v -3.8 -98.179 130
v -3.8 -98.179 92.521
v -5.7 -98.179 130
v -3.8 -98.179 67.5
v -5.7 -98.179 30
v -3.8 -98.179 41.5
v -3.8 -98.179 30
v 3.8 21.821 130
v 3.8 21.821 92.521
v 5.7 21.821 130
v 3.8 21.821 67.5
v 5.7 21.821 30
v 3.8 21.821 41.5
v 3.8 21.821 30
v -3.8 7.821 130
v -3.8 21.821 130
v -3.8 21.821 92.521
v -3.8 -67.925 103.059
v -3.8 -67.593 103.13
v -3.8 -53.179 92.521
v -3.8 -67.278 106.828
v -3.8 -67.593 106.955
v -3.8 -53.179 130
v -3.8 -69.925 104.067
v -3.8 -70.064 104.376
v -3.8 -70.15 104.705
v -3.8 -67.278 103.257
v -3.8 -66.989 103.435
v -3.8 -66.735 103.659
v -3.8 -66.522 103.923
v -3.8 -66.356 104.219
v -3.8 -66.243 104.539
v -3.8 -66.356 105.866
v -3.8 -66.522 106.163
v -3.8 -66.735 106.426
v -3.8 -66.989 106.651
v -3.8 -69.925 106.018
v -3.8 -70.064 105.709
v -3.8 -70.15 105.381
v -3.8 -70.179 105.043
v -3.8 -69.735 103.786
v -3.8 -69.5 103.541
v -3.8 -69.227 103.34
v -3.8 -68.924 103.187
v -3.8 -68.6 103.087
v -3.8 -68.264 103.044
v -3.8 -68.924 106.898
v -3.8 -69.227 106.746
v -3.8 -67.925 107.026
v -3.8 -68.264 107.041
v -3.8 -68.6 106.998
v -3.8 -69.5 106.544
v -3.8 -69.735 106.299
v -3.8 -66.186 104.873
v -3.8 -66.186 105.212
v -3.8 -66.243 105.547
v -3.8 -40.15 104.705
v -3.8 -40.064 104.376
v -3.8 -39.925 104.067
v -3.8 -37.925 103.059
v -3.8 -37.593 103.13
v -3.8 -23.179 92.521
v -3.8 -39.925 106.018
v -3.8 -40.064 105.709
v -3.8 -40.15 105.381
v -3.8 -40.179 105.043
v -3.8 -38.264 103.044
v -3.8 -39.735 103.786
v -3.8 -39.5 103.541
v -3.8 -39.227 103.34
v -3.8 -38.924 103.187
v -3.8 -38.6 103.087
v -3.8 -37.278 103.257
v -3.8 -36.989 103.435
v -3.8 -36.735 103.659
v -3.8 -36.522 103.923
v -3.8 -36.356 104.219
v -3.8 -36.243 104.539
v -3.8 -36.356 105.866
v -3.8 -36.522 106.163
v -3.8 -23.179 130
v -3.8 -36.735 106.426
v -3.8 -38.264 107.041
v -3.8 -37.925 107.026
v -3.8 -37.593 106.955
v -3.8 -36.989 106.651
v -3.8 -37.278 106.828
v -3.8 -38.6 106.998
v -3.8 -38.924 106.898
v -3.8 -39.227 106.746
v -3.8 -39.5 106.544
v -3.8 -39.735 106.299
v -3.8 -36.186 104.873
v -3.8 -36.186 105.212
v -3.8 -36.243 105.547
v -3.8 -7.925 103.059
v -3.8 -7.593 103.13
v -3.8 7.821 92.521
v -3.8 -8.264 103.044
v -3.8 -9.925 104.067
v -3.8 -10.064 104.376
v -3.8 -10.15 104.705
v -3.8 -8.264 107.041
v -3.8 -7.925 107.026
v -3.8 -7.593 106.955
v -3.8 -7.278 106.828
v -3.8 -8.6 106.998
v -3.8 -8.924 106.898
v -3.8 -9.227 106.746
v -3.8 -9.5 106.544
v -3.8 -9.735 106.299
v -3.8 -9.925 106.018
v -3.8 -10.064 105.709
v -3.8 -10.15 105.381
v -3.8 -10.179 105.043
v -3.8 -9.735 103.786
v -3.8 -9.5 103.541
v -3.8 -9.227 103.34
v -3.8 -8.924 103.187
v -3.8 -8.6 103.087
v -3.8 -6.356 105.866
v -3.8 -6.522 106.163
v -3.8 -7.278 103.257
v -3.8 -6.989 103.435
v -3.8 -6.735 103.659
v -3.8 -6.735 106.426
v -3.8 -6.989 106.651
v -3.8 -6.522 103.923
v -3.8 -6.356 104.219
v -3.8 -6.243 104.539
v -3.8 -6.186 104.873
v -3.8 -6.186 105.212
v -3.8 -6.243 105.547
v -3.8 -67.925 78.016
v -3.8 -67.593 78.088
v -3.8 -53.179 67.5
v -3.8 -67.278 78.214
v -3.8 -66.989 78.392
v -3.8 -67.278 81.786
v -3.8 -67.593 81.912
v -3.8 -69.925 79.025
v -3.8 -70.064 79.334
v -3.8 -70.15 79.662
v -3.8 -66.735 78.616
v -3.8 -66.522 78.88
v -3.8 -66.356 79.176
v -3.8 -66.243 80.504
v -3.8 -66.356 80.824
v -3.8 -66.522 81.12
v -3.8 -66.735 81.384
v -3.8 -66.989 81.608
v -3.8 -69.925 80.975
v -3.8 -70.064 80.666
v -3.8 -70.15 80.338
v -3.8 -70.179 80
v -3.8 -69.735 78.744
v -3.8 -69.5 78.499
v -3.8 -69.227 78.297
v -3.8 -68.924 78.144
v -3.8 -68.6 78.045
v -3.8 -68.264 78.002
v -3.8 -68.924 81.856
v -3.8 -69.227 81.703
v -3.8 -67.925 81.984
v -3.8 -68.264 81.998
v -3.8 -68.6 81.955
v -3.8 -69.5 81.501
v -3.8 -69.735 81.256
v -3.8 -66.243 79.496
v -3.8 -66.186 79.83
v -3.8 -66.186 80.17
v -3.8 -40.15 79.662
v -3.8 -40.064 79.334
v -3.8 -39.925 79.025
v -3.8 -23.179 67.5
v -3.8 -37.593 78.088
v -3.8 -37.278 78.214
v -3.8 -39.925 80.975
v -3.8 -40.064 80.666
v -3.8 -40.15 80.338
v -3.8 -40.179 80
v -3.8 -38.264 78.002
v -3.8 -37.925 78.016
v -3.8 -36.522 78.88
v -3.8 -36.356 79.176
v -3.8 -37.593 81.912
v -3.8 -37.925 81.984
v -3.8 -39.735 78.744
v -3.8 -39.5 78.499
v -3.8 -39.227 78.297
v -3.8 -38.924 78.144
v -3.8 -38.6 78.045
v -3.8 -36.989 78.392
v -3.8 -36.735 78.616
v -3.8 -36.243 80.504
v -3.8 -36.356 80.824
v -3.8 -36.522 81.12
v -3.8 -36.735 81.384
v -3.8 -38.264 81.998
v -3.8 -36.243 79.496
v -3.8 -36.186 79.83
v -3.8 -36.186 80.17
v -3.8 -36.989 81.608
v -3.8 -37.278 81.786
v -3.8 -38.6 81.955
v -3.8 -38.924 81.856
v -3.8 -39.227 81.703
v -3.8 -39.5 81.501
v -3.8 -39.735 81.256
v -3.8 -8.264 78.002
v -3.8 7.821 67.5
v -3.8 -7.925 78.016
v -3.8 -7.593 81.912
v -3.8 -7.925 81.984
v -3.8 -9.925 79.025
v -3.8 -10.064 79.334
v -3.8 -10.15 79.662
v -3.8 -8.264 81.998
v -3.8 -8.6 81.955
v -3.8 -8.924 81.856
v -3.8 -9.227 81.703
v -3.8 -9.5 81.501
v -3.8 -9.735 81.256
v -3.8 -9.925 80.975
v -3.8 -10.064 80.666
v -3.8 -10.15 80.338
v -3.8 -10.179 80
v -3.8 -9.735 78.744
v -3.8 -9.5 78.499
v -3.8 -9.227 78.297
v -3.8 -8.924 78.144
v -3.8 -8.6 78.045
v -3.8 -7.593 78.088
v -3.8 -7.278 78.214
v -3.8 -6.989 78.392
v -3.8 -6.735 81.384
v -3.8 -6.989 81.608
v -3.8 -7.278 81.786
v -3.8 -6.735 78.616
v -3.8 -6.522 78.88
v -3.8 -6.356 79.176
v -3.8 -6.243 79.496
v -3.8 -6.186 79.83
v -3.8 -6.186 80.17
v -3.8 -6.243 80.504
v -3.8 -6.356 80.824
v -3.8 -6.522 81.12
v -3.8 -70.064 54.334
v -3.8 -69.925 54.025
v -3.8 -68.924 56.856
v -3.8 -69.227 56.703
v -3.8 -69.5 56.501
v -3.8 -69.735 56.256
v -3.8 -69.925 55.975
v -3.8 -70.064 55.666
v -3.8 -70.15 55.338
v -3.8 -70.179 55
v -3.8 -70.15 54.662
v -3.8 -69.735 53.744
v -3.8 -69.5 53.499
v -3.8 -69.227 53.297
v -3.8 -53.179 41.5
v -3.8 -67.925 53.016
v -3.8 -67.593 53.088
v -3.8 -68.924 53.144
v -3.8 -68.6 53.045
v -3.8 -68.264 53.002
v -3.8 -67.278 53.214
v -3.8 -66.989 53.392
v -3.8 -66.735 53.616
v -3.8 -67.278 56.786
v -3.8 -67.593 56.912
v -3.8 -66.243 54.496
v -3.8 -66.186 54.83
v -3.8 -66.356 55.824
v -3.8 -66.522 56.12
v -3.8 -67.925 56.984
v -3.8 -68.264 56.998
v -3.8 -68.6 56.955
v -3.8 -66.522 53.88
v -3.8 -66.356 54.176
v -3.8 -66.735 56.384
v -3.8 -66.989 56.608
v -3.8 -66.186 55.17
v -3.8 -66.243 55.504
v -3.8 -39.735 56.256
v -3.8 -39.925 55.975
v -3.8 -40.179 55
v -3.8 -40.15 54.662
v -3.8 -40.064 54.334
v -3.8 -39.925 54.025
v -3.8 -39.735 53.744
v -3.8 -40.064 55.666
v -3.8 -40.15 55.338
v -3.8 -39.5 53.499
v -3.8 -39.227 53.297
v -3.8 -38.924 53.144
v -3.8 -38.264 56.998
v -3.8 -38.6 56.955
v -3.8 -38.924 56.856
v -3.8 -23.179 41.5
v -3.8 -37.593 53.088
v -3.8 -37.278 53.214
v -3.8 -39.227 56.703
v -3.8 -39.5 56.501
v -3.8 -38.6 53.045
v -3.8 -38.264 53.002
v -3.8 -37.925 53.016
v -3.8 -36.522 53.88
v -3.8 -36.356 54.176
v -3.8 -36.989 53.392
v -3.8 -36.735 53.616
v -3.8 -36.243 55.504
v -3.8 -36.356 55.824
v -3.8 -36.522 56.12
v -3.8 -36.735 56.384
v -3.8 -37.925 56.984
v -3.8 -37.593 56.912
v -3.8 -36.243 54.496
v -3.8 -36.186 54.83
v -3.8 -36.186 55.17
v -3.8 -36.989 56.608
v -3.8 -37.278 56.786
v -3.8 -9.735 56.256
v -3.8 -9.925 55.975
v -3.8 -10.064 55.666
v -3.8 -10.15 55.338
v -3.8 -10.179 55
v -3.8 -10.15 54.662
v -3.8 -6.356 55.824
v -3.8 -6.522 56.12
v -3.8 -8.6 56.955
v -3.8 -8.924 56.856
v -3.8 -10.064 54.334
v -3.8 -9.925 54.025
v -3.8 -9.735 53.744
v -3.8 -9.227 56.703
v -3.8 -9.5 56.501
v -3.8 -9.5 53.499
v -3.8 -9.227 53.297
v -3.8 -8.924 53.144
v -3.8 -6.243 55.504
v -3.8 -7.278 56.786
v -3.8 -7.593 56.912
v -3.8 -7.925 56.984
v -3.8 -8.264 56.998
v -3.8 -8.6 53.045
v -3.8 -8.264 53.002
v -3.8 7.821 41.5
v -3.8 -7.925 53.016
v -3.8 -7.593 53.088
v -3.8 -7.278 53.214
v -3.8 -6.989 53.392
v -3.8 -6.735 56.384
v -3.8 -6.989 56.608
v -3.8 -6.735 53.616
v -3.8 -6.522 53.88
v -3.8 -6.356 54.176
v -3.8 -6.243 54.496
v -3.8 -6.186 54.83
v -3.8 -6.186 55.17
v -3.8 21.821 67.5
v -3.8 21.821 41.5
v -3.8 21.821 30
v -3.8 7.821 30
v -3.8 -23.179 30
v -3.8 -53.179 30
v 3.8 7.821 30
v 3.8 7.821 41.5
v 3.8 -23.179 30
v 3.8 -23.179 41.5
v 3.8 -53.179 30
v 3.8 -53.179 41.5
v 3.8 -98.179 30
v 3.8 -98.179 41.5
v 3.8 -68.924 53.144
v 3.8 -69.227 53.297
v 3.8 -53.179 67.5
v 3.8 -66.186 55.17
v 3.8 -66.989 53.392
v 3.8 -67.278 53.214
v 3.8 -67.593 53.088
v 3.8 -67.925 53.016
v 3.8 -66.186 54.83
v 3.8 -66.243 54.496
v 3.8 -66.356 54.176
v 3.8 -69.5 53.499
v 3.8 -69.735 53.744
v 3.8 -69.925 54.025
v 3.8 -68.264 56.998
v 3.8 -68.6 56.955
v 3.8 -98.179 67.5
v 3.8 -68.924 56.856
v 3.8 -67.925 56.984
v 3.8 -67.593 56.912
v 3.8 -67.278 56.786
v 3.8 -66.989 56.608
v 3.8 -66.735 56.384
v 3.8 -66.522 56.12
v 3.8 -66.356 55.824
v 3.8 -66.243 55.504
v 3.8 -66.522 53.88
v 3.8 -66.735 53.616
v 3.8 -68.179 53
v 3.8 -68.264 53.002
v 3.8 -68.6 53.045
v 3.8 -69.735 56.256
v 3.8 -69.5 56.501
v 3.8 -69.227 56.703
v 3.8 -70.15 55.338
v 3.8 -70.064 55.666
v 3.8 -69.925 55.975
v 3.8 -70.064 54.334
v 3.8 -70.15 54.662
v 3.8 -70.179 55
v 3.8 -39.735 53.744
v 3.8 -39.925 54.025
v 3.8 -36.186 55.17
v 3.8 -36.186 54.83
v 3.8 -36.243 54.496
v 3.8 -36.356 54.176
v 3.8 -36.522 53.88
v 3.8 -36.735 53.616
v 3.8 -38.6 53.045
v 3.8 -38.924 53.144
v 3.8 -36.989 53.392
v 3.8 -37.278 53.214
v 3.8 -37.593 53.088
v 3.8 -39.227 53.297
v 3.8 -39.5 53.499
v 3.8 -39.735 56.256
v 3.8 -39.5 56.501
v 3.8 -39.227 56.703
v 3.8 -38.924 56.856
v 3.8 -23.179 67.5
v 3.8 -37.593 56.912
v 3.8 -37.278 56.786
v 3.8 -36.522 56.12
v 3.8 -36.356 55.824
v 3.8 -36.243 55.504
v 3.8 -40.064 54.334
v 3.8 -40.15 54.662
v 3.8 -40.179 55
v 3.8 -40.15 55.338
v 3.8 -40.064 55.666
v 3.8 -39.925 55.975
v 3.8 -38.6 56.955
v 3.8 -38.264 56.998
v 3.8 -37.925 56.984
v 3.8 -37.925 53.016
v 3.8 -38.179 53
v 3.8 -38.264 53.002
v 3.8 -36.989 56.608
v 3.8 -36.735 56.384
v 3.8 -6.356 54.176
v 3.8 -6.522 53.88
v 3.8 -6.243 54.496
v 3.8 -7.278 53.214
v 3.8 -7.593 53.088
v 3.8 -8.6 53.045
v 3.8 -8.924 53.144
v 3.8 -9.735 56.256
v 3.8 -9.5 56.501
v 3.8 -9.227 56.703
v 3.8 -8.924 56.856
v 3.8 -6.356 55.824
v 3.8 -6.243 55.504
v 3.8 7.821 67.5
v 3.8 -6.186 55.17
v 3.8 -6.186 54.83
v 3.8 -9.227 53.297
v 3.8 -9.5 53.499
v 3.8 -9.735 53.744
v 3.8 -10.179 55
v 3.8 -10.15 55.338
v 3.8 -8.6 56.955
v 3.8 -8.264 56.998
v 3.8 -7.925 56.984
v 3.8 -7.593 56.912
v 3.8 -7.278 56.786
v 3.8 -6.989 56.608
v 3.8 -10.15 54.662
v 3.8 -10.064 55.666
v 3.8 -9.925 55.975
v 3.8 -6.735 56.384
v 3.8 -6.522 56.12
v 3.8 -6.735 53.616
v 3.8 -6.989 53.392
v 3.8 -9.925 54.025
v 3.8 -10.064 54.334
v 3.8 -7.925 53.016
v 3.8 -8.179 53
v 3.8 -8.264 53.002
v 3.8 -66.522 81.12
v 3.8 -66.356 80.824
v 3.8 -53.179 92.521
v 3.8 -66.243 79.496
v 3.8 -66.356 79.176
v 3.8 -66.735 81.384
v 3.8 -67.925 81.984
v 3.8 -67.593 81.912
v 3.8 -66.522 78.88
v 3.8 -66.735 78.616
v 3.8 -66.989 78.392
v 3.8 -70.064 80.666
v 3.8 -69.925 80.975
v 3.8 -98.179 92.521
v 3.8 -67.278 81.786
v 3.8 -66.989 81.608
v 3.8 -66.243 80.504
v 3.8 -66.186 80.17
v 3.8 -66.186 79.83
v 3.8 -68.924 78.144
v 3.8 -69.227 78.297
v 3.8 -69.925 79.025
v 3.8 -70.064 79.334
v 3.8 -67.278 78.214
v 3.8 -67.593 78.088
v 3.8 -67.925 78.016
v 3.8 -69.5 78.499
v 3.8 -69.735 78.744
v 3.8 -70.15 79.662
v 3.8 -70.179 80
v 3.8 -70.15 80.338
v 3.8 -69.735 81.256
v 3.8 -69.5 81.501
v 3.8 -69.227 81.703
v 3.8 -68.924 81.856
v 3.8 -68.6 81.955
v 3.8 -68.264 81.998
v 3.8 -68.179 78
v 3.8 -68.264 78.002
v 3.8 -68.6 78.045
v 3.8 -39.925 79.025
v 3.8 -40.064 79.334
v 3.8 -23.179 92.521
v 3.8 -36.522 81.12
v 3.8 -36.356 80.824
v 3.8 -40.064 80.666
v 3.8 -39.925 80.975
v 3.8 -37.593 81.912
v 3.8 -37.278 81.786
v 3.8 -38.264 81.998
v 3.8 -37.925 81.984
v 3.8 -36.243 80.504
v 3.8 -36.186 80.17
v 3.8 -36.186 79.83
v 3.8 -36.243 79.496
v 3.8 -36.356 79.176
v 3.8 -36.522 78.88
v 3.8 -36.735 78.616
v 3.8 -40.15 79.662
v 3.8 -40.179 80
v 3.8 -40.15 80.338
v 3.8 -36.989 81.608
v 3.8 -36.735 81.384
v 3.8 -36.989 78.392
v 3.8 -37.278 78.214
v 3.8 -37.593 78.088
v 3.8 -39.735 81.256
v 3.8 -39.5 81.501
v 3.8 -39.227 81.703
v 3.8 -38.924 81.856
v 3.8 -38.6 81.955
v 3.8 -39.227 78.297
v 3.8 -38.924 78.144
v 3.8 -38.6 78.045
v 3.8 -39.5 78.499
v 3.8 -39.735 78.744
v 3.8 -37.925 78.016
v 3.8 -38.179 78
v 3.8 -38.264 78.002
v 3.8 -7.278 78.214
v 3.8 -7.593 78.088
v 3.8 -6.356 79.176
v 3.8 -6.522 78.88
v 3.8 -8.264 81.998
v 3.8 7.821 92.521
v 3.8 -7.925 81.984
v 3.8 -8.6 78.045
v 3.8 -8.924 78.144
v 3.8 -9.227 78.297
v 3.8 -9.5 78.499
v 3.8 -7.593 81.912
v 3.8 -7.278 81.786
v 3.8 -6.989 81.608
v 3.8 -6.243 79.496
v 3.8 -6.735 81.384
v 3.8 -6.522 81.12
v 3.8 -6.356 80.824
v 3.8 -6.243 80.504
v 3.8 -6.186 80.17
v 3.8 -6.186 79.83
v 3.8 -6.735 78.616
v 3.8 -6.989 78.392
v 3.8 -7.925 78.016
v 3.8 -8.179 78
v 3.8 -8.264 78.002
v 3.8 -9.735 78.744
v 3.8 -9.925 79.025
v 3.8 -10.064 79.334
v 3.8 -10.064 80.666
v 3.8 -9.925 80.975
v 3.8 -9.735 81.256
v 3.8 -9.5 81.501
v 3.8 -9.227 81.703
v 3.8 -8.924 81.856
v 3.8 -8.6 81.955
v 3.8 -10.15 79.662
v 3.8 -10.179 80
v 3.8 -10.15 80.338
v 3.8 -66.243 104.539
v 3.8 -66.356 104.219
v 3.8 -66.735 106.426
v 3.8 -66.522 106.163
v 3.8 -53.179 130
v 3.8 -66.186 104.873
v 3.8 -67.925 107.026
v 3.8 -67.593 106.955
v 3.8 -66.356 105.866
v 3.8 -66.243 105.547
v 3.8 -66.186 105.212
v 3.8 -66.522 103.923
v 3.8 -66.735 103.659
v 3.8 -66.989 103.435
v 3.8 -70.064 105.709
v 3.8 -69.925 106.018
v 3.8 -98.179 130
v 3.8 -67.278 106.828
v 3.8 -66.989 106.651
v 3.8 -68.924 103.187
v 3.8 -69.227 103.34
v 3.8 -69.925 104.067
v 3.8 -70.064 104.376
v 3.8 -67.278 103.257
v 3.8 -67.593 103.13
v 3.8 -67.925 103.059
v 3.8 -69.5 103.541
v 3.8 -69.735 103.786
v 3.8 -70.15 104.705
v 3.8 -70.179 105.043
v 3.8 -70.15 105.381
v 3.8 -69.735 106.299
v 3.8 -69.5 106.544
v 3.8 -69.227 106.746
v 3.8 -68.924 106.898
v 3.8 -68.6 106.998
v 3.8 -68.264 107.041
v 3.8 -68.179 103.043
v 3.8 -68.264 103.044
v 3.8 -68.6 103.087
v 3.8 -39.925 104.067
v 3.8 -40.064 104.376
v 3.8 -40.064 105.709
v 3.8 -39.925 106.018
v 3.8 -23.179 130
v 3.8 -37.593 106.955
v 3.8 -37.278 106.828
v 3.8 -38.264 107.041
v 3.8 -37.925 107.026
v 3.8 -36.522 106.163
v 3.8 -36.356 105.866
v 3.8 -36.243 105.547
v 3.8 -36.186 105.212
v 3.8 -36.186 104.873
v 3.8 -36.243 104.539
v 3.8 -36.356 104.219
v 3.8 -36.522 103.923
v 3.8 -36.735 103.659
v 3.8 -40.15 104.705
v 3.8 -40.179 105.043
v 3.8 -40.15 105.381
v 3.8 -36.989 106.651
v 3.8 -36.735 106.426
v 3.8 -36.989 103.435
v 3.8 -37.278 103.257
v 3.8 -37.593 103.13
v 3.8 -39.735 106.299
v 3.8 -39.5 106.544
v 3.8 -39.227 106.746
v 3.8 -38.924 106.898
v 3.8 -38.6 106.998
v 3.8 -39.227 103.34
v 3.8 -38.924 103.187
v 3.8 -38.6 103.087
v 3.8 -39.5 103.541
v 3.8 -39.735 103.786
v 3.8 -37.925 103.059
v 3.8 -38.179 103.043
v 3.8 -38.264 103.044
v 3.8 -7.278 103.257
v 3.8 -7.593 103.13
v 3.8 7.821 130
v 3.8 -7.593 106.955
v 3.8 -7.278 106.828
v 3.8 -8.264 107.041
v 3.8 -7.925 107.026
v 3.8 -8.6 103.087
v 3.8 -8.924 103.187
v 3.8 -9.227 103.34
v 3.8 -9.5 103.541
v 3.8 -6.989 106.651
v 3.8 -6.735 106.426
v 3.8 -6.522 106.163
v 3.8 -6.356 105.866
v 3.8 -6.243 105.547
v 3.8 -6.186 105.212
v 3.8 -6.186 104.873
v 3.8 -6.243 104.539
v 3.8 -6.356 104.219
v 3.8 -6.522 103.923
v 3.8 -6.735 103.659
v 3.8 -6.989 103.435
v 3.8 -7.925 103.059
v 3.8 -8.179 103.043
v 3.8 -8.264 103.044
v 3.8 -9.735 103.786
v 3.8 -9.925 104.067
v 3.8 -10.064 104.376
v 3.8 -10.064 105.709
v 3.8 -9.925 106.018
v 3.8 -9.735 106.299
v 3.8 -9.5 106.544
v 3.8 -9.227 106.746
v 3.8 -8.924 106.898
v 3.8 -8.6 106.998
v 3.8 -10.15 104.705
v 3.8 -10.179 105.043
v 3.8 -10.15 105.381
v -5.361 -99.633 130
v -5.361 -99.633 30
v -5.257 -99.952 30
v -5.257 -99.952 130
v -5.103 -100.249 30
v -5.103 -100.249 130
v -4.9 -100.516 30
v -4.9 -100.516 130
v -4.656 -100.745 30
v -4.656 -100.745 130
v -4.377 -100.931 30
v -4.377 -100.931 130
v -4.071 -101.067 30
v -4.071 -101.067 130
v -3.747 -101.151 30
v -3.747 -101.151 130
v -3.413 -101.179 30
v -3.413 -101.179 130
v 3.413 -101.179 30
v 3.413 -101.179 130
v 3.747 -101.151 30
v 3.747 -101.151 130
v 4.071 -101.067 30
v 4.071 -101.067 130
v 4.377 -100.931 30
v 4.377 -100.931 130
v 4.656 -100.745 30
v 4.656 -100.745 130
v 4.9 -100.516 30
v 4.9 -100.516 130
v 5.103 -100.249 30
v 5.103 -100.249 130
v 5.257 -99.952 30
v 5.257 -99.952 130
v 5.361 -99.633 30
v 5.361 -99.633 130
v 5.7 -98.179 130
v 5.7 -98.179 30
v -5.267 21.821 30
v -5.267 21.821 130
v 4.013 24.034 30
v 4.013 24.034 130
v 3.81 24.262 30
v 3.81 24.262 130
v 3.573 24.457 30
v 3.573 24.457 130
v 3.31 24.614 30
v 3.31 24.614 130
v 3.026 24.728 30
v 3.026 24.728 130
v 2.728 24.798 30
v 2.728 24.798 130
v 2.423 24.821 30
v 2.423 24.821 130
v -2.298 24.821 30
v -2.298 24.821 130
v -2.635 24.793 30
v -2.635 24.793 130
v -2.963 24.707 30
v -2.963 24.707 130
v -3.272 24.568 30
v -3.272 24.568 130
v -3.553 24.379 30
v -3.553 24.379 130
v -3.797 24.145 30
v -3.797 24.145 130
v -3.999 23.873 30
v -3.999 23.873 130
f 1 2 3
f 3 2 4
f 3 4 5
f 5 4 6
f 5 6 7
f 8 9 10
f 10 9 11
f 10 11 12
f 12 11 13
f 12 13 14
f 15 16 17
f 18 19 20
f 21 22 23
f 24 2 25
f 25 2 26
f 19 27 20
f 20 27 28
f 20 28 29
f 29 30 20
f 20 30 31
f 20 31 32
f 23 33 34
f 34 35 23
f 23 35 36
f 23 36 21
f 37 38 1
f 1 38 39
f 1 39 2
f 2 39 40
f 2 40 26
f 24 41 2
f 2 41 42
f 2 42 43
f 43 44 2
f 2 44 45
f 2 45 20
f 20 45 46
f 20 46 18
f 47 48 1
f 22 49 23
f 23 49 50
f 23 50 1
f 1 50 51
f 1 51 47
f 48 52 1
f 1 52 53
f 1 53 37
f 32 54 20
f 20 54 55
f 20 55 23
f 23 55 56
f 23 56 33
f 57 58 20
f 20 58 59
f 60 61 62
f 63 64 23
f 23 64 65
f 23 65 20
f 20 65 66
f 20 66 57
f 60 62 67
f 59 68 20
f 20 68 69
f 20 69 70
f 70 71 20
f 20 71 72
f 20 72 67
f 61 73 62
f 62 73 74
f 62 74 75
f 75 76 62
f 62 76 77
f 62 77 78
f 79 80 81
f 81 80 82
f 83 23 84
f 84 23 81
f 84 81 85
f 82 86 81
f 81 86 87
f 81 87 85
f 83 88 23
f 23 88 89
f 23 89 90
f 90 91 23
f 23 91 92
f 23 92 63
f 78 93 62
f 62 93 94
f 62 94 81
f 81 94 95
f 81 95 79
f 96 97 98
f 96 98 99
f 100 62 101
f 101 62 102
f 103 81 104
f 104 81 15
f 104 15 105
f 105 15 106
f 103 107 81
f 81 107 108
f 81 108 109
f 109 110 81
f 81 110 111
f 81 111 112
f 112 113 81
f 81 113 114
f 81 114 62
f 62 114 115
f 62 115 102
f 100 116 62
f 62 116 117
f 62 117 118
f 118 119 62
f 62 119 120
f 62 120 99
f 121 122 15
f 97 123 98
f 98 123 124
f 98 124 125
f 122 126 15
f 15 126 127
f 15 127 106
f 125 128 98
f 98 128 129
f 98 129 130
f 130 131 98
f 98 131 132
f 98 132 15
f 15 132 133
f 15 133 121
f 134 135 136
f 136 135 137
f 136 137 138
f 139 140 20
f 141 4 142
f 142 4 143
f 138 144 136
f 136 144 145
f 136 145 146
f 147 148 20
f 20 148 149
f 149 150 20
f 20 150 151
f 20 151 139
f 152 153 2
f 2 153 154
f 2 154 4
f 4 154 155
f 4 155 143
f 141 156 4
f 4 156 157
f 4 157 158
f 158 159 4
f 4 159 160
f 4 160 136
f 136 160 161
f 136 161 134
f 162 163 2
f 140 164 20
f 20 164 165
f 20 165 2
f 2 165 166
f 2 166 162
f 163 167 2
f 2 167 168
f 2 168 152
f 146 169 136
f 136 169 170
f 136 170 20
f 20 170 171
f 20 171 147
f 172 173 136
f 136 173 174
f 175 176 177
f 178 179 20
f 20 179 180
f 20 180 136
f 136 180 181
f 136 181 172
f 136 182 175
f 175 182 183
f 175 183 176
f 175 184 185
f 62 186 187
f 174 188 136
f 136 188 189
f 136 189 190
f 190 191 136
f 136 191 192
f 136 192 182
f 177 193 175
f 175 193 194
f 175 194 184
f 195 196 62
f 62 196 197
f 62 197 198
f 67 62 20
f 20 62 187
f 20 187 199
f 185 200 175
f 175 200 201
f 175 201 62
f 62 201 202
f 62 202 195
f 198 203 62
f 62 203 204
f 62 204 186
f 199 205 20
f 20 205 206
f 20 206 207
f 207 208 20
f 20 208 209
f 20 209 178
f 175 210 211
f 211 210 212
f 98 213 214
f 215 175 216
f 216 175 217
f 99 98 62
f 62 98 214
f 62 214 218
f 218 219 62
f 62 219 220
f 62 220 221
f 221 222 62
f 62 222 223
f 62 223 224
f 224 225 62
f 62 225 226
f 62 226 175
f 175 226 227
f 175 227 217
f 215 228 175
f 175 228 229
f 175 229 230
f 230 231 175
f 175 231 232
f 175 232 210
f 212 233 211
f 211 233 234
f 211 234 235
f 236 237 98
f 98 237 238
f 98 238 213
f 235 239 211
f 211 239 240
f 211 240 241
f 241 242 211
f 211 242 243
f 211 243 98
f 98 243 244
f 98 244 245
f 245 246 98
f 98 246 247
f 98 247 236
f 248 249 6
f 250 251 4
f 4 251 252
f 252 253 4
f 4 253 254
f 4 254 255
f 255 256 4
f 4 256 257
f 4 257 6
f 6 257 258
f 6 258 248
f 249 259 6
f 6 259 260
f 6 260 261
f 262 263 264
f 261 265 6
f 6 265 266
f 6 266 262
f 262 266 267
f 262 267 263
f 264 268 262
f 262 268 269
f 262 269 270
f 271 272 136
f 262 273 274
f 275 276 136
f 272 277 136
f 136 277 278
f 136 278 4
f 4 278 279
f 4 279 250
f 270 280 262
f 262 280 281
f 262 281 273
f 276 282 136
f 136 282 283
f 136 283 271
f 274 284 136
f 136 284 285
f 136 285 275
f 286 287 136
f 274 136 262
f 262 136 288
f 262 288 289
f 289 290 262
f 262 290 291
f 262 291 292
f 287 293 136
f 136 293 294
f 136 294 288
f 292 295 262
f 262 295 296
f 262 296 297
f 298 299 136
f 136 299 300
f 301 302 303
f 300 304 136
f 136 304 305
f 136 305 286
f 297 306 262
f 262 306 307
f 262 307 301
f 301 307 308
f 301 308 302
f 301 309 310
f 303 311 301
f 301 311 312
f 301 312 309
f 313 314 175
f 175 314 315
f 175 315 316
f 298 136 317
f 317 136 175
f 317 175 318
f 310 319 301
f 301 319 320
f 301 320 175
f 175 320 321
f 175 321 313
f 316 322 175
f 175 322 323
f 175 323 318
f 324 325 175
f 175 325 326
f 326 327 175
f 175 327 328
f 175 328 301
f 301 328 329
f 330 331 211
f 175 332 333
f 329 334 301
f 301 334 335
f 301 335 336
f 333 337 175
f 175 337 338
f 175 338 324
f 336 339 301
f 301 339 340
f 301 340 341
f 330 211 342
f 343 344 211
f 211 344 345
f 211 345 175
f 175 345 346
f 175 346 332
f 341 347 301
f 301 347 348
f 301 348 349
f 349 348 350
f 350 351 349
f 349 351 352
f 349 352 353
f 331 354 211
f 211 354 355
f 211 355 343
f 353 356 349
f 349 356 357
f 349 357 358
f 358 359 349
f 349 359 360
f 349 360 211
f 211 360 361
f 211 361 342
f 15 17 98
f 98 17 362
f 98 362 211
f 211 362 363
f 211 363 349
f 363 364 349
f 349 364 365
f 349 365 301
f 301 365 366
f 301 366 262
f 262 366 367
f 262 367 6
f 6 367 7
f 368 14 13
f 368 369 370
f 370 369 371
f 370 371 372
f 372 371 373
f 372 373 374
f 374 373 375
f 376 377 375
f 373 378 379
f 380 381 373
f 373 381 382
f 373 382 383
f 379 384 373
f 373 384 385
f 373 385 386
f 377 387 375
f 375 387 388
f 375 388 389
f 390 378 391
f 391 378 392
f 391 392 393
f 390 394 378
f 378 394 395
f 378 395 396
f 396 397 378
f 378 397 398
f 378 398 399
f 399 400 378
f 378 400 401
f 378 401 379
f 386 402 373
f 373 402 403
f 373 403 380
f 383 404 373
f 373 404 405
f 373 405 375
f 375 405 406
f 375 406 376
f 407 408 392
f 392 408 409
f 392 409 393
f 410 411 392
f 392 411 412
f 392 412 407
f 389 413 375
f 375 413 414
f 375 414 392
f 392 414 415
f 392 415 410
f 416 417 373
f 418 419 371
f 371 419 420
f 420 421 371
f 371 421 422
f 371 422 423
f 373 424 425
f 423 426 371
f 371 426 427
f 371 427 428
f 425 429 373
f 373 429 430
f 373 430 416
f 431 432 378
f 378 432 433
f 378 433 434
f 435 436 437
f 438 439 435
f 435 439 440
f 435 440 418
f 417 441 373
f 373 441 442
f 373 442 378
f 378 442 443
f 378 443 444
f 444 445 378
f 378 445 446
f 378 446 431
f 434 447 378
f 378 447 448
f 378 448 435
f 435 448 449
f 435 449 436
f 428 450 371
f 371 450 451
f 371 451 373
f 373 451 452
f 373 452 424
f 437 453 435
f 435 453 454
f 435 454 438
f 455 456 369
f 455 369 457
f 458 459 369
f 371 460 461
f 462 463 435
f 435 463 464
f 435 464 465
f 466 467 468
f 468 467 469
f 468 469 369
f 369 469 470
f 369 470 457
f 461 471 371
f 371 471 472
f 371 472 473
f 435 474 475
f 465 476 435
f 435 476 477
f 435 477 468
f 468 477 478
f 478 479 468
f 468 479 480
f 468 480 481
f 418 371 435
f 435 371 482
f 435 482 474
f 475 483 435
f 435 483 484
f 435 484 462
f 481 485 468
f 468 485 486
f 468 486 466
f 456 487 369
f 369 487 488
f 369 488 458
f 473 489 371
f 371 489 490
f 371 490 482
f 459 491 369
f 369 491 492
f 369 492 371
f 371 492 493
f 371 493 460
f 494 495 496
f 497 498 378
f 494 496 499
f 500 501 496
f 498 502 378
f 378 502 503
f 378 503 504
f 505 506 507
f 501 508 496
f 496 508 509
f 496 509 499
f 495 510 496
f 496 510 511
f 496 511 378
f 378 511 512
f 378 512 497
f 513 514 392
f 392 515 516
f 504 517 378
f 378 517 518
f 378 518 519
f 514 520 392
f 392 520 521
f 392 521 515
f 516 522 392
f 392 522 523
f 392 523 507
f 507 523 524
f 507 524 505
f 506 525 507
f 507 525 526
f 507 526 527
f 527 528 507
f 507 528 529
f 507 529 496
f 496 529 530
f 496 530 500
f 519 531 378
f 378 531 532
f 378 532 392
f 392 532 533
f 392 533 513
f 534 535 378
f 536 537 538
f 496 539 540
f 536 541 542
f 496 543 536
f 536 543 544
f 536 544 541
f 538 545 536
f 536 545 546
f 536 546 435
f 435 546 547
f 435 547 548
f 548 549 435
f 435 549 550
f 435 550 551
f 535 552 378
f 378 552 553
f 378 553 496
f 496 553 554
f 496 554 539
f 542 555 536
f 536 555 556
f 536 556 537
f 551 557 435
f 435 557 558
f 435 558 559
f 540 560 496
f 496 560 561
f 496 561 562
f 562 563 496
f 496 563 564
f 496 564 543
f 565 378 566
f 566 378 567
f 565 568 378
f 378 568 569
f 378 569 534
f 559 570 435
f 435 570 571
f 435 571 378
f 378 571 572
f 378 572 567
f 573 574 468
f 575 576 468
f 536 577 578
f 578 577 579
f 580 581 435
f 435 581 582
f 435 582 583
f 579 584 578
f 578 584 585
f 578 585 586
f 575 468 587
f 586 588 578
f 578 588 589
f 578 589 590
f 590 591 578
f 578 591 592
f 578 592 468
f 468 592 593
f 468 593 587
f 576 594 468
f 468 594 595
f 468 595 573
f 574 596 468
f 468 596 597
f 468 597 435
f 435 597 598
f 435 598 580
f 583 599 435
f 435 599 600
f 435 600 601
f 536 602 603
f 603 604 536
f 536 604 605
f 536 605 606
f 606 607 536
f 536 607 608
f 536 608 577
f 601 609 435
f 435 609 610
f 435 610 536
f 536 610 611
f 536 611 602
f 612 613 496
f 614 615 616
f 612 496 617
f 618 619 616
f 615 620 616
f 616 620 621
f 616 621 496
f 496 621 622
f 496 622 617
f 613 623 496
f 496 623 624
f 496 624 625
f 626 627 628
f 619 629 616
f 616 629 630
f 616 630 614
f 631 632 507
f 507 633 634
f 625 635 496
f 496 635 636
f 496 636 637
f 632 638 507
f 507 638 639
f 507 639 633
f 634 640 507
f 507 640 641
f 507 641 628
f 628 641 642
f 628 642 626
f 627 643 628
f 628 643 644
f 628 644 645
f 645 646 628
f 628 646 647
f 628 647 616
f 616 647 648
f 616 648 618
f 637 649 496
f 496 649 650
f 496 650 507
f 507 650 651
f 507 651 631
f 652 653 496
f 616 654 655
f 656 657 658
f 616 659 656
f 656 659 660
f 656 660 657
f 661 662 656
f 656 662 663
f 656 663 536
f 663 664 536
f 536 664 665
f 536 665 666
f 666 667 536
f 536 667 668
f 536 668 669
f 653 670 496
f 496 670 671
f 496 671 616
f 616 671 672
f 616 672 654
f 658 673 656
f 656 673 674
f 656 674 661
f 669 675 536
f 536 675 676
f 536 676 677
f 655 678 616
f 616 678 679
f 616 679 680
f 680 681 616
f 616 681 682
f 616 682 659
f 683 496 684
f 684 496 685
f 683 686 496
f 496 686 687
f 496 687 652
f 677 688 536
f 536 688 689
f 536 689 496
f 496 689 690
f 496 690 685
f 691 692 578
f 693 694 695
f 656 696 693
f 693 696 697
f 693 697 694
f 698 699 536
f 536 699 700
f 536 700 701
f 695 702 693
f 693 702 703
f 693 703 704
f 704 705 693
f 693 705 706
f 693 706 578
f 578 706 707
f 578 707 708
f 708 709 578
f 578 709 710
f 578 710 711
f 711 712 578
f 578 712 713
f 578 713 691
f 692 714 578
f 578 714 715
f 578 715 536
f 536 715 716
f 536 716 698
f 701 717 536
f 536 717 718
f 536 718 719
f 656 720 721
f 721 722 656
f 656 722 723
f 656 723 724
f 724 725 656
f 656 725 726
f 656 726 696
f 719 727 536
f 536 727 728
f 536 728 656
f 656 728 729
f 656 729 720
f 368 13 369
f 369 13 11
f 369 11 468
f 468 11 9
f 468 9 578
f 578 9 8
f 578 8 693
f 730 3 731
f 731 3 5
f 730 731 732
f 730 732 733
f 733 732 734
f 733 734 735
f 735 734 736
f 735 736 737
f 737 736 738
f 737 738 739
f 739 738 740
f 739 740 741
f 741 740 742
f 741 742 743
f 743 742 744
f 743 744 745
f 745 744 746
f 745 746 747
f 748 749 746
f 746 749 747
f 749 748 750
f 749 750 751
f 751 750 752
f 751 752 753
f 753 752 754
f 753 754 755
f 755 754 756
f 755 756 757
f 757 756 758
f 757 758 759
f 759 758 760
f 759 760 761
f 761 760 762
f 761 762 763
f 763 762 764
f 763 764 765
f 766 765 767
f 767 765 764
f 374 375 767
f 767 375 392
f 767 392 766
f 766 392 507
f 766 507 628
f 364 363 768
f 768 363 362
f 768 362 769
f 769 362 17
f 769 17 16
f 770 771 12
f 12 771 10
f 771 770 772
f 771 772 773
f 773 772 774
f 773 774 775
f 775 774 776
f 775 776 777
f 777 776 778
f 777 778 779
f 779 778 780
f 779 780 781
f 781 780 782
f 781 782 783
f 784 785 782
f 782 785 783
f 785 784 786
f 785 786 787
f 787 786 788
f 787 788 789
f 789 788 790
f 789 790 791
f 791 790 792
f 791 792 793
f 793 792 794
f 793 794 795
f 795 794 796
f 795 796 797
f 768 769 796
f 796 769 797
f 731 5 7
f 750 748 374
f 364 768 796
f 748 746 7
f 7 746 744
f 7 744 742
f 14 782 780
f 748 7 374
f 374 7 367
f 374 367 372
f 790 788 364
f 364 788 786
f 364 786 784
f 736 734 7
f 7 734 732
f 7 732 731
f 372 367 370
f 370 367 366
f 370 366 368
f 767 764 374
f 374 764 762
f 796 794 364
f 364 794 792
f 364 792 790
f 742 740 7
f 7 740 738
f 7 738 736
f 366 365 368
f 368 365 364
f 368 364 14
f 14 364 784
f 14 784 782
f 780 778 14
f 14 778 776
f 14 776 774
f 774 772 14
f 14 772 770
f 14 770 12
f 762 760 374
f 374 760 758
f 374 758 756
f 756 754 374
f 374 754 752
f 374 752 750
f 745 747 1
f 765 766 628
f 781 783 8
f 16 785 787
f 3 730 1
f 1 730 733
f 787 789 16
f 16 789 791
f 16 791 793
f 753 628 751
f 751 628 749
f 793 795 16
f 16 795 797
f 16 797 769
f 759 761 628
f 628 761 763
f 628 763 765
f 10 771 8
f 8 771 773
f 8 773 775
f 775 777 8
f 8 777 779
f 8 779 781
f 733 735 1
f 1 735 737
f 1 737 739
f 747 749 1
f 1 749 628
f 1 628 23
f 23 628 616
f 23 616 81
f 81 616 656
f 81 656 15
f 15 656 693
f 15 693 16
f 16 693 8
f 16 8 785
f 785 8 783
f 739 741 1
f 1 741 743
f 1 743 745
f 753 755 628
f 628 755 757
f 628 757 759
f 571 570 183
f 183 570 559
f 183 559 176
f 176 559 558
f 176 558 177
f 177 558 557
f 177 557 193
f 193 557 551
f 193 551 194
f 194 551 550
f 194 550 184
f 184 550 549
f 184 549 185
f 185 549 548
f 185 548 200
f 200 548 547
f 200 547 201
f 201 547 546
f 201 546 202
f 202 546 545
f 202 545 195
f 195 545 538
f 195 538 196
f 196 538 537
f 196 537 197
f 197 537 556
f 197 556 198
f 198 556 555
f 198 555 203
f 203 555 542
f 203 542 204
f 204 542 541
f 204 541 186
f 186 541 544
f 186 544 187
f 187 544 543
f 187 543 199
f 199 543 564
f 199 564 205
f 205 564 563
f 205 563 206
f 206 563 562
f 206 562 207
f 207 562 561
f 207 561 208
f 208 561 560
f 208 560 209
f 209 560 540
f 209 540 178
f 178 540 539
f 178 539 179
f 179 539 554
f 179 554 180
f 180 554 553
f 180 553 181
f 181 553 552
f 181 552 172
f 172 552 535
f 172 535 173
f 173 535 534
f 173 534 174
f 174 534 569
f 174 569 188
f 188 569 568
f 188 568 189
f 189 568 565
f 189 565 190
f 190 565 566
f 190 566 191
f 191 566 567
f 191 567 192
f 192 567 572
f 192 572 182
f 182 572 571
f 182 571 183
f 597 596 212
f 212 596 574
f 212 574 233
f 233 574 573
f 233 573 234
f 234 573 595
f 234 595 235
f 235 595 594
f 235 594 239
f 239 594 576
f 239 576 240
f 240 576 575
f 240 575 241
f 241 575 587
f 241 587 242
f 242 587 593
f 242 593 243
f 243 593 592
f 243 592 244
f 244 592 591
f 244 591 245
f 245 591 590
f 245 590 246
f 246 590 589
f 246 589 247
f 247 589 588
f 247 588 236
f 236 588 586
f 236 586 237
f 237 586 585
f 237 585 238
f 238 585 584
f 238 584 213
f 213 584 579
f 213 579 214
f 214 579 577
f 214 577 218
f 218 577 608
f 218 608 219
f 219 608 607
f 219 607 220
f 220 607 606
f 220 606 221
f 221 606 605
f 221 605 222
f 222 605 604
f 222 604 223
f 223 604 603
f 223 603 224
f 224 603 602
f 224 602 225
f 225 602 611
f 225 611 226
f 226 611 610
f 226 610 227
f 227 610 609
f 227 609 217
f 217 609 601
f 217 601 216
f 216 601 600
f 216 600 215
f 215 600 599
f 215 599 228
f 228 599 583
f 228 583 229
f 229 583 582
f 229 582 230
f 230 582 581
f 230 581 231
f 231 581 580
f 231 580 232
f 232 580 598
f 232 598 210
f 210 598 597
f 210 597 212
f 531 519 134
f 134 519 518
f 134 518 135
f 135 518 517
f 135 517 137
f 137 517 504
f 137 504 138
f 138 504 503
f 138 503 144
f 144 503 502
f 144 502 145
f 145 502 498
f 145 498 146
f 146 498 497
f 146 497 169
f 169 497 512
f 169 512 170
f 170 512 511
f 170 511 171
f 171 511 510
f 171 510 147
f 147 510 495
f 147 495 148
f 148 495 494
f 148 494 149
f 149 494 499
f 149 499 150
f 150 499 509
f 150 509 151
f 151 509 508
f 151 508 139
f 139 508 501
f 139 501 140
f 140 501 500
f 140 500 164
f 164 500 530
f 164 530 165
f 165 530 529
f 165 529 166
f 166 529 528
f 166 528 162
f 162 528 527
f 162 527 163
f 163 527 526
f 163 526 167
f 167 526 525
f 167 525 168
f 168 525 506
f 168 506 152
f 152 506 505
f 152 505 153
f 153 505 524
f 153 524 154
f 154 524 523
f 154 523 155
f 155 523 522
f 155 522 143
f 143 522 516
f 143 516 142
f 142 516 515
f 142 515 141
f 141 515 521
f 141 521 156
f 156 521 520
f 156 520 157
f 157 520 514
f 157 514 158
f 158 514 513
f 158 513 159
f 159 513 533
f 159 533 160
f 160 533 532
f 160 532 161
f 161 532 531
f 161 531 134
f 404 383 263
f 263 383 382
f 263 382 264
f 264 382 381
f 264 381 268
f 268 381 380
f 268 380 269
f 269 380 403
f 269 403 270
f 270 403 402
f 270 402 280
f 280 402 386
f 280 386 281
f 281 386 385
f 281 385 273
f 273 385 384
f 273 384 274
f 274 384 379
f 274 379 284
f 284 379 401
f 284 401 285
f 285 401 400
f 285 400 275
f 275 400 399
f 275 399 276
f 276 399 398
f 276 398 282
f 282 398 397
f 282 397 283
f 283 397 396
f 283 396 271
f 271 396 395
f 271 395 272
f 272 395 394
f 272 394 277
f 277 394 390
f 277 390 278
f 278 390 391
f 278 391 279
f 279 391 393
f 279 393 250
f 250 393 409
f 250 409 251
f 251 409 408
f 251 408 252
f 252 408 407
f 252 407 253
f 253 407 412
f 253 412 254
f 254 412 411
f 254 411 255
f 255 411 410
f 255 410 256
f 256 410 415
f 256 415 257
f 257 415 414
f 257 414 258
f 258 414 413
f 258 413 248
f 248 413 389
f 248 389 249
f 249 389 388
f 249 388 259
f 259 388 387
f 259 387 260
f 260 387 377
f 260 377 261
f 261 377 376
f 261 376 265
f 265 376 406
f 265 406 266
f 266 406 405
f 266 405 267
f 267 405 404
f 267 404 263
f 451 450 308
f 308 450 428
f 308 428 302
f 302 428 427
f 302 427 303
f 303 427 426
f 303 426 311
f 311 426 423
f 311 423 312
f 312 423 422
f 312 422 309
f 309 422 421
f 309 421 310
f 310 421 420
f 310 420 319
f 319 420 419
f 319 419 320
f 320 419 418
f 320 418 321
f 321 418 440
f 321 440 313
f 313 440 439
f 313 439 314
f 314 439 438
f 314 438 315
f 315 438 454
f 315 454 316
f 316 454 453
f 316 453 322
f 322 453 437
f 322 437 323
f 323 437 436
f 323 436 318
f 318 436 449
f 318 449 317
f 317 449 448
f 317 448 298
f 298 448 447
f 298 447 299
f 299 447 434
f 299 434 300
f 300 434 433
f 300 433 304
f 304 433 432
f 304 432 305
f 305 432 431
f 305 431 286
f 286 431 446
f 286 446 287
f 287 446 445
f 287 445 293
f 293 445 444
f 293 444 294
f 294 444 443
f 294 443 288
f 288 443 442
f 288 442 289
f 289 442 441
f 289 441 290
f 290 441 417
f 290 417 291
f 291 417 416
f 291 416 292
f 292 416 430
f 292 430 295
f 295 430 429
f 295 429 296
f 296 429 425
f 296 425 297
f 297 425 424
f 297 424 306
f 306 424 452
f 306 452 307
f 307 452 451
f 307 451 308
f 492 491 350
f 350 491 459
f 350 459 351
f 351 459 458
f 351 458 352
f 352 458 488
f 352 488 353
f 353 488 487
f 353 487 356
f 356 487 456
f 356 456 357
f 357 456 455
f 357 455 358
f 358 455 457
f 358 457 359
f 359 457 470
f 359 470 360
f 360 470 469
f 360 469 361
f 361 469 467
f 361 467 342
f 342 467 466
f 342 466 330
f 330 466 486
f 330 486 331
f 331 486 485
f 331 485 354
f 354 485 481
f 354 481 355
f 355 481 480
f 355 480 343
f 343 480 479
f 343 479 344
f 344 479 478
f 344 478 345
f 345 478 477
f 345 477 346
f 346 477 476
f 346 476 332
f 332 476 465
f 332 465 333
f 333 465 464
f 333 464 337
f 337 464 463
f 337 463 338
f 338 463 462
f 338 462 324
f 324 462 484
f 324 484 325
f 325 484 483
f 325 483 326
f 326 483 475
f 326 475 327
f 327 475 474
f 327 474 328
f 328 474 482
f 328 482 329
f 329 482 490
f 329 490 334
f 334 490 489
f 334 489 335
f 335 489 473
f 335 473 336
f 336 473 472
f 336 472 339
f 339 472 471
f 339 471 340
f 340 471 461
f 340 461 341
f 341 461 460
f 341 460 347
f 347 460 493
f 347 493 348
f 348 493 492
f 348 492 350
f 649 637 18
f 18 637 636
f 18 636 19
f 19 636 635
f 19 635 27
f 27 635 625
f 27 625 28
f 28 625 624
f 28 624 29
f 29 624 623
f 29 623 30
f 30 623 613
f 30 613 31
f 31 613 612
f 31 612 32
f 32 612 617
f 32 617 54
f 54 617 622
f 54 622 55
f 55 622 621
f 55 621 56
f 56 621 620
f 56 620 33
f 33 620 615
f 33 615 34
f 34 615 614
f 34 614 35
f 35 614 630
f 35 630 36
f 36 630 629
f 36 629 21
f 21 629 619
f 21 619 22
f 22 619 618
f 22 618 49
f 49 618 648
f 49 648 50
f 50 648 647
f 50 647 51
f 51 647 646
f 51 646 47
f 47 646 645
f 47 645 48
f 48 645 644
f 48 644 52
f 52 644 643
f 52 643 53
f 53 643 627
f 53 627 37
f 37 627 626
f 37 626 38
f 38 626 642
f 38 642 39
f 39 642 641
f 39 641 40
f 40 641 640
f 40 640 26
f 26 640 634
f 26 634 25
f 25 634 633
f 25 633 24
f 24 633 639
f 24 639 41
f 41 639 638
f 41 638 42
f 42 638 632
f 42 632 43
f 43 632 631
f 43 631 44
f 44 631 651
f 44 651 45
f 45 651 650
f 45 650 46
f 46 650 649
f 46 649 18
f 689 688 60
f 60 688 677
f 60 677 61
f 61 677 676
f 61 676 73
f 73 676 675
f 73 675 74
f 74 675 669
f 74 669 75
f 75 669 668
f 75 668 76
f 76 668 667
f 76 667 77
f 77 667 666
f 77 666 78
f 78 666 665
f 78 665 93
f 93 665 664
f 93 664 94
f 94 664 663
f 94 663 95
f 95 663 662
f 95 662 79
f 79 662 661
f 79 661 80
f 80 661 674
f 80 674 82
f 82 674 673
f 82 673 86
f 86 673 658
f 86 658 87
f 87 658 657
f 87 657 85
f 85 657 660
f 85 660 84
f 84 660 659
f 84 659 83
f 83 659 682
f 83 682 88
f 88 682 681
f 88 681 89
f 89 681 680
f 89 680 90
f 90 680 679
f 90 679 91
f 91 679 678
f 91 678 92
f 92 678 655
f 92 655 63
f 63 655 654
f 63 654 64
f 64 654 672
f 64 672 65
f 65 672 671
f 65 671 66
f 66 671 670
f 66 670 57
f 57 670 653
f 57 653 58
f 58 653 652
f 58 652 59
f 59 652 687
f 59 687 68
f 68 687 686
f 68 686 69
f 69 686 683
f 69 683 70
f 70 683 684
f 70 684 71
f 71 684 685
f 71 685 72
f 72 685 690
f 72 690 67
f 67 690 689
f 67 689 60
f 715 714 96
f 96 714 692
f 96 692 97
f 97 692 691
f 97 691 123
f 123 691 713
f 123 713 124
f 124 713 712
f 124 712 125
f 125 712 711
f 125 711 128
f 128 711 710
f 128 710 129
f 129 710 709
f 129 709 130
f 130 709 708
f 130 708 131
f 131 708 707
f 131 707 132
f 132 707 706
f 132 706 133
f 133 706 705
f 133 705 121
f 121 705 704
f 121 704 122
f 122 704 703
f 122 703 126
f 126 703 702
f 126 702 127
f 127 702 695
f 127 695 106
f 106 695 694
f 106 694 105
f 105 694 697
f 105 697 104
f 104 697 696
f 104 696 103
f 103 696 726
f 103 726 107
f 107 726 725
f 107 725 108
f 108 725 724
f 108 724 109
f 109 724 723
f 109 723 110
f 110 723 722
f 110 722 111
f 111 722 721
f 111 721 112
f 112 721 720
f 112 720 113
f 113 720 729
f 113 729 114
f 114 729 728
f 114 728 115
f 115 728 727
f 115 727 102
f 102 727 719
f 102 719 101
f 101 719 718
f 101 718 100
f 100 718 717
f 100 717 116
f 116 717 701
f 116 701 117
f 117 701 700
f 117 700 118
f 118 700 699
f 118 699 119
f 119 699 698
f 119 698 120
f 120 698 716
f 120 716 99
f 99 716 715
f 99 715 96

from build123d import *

# Parameters (mm, degrees)
RESSALTO_EXTRUS_O1_DEPTH   = 160
ESBO_O2_W                  = 7.6
ESBO_O2_H                  = 120
CORTE_EXTRUS_O1_DEPTH      = 30
CORTE_EXTRUS_O2_DEPTH      = 30
F_3DSKETCH3_R              = 2
CORTE_EXTRUS_O3_DEPTH      = 70
ESBO_O3_W                  = 45.015344868
ESBO_O3_H                  = 129.478543367
ESBO_O3_W_2                = 37.192593828
CORTE_EXTRUS_O4_DEPTH      = 41
CORTE_EXTRUS_O4_DEPTH_BACK = 22


with BuildPart() as part:
    # Esboço1 → Ressalto-extrusão1 (new body)
    with BuildSketch(Plane.XY):
        with BuildLine():
            Line((-3.8, 21.821375341), (-3.8, -98.178624659))
            Line((-3.8, -98.178624659), (-5.7, -98.178624659))
            Line((-5.7, -98.178624659), (-5.360626179, -99.63308389))
            ThreePointArc((-5.360626179, -99.63308389), (-4.656141559, -100.745296045), (-3.41294376, -101.178624659))
            Line((-3.41294376, -101.178624659), (3.41294376, -101.178624659))
            ThreePointArc((3.41294376, -101.178624659), (4.656141559, -100.745296045), (5.360626179, -99.63308389))
            Line((5.360626179, -99.63308389), (5.7, -98.178624659))
            Line((5.7, -98.178624659), (3.8, -98.178624659))
            Line((3.8, -98.178624659), (3.8, 21.821375341))
            Line((3.8, 21.821375341), (5.7, 21.821375341))
            Line((5.7, 21.821375341), (4.013268169, 24.033911877))
            ThreePointArc((4.013268169, 24.033911877), (3.310139149, 24.613730366), (2.422747768, 24.821375341))
            Line((2.422747768, 24.821375341), (-2.297792791, 24.821375341))
            ThreePointArc((-2.297792791, 24.821375341), (-3.27177376, 24.568189891), (-3.999156919, 23.872736414))
            Line((-3.999156919, 23.872736414), (-5.266799243, 21.821375341))
            Line((-5.266799243, 21.821375341), (-3.8, 21.821375341))
        make_face()
    extrude(amount=RESSALTO_EXTRUS_O1_DEPTH)

    # Esboço2 → Corte-extrusão1 (cut)
    with BuildSketch(Plane.XY):
        with Locations((0, -38.178624659)):
            Rectangle(ESBO_O2_W, ESBO_O2_H)
    extrude(amount=CORTE_EXTRUS_O1_DEPTH, mode=Mode.SUBTRACT)

    # 3DSketch2 → Corte-extrusão2 (cut)
    with BuildSketch(Plane(origin=(-3.8, 21.821375341, 160), x_dir=(0.0632066956560733, -0.9980004577274705, 0), z_dir=(0, 0, -1))):
        Polygon((0, 0), (0.480370887, -7.584803479), (120.240425814, 0), (119.760054927, 7.584803479), align=None)
    extrude(amount=CORTE_EXTRUS_O2_DEPTH, mode=Mode.SUBTRACT)

    # 3DSketch3 → Corte-extrusão3 (cut)
    with BuildSketch(Plane(origin=(3.8, -38.178624659, 80), x_dir=(0, 0.7676852805184269, 0.6408270516101394), z_dir=(1, 0, 0))):
        with Locations(Location((0, 0, 0), (0, 0, 140.146481665))):
            Circle(F_3DSKETCH3_R)
        with Locations(Location((23.030558416, -19.224811548, 0), (0, 0, 140.146481665))):
            Circle(F_3DSKETCH3_R)
        with Locations(Location((-23.030558416, 19.224811548, 0), (0, 0, 140.146481665))):
            Circle(F_3DSKETCH3_R)
        with Locations(Location((-39.051234706, 0.032679535, 0), (0, 0, 140.146481665))):
            Circle(F_3DSKETCH3_R)
        with Locations(Location((-16.02067629, -19.192132013, 0), (0, 0, 140.146481665))):
            Circle(F_3DSKETCH3_R)
        with Locations(Location((7.009882125, -38.416943561, 0), (0, 0, 140.146481665))):
            Circle(F_3DSKETCH3_R)
        with Locations(Location((-6.982602808, 38.449623097, 0), (0, 0, 140.146481665))):
            Circle(F_3DSKETCH3_R)
        with Locations(Location((16.047955607, 19.224811548, 0), (0, 0, 140.146481665))):
            Circle(F_3DSKETCH3_R)
        with Locations(Location((39.078514023, 0, 0), (0, 0, 140.146481665))):
            Circle(F_3DSKETCH3_R)
    extrude(amount=-CORTE_EXTRUS_O3_DEPTH, mode=Mode.SUBTRACT)

    # Esboço3 → Corte-extrusão4 (cut, two sides)
    with BuildSketch(Plane(origin=(0, 0, 0), x_dir=(0, 0, -1), z_dir=(1, 0, 0))) as corte_extrus_o4_sk:
        with Locations((-7.492327566, -39.917896343)):
            Rectangle(ESBO_O3_W, ESBO_O3_H)
        with Locations((-148.596296914, -39.917896343)):
            Rectangle(ESBO_O3_W_2, ESBO_O3_H)
    extrude(amount=CORTE_EXTRUS_O4_DEPTH, mode=Mode.SUBTRACT)
    extrude(corte_extrus_o4_sk.sketch, amount=-CORTE_EXTRUS_O4_DEPTH_BACK, mode=Mode.SUBTRACT)


solid = part.part
